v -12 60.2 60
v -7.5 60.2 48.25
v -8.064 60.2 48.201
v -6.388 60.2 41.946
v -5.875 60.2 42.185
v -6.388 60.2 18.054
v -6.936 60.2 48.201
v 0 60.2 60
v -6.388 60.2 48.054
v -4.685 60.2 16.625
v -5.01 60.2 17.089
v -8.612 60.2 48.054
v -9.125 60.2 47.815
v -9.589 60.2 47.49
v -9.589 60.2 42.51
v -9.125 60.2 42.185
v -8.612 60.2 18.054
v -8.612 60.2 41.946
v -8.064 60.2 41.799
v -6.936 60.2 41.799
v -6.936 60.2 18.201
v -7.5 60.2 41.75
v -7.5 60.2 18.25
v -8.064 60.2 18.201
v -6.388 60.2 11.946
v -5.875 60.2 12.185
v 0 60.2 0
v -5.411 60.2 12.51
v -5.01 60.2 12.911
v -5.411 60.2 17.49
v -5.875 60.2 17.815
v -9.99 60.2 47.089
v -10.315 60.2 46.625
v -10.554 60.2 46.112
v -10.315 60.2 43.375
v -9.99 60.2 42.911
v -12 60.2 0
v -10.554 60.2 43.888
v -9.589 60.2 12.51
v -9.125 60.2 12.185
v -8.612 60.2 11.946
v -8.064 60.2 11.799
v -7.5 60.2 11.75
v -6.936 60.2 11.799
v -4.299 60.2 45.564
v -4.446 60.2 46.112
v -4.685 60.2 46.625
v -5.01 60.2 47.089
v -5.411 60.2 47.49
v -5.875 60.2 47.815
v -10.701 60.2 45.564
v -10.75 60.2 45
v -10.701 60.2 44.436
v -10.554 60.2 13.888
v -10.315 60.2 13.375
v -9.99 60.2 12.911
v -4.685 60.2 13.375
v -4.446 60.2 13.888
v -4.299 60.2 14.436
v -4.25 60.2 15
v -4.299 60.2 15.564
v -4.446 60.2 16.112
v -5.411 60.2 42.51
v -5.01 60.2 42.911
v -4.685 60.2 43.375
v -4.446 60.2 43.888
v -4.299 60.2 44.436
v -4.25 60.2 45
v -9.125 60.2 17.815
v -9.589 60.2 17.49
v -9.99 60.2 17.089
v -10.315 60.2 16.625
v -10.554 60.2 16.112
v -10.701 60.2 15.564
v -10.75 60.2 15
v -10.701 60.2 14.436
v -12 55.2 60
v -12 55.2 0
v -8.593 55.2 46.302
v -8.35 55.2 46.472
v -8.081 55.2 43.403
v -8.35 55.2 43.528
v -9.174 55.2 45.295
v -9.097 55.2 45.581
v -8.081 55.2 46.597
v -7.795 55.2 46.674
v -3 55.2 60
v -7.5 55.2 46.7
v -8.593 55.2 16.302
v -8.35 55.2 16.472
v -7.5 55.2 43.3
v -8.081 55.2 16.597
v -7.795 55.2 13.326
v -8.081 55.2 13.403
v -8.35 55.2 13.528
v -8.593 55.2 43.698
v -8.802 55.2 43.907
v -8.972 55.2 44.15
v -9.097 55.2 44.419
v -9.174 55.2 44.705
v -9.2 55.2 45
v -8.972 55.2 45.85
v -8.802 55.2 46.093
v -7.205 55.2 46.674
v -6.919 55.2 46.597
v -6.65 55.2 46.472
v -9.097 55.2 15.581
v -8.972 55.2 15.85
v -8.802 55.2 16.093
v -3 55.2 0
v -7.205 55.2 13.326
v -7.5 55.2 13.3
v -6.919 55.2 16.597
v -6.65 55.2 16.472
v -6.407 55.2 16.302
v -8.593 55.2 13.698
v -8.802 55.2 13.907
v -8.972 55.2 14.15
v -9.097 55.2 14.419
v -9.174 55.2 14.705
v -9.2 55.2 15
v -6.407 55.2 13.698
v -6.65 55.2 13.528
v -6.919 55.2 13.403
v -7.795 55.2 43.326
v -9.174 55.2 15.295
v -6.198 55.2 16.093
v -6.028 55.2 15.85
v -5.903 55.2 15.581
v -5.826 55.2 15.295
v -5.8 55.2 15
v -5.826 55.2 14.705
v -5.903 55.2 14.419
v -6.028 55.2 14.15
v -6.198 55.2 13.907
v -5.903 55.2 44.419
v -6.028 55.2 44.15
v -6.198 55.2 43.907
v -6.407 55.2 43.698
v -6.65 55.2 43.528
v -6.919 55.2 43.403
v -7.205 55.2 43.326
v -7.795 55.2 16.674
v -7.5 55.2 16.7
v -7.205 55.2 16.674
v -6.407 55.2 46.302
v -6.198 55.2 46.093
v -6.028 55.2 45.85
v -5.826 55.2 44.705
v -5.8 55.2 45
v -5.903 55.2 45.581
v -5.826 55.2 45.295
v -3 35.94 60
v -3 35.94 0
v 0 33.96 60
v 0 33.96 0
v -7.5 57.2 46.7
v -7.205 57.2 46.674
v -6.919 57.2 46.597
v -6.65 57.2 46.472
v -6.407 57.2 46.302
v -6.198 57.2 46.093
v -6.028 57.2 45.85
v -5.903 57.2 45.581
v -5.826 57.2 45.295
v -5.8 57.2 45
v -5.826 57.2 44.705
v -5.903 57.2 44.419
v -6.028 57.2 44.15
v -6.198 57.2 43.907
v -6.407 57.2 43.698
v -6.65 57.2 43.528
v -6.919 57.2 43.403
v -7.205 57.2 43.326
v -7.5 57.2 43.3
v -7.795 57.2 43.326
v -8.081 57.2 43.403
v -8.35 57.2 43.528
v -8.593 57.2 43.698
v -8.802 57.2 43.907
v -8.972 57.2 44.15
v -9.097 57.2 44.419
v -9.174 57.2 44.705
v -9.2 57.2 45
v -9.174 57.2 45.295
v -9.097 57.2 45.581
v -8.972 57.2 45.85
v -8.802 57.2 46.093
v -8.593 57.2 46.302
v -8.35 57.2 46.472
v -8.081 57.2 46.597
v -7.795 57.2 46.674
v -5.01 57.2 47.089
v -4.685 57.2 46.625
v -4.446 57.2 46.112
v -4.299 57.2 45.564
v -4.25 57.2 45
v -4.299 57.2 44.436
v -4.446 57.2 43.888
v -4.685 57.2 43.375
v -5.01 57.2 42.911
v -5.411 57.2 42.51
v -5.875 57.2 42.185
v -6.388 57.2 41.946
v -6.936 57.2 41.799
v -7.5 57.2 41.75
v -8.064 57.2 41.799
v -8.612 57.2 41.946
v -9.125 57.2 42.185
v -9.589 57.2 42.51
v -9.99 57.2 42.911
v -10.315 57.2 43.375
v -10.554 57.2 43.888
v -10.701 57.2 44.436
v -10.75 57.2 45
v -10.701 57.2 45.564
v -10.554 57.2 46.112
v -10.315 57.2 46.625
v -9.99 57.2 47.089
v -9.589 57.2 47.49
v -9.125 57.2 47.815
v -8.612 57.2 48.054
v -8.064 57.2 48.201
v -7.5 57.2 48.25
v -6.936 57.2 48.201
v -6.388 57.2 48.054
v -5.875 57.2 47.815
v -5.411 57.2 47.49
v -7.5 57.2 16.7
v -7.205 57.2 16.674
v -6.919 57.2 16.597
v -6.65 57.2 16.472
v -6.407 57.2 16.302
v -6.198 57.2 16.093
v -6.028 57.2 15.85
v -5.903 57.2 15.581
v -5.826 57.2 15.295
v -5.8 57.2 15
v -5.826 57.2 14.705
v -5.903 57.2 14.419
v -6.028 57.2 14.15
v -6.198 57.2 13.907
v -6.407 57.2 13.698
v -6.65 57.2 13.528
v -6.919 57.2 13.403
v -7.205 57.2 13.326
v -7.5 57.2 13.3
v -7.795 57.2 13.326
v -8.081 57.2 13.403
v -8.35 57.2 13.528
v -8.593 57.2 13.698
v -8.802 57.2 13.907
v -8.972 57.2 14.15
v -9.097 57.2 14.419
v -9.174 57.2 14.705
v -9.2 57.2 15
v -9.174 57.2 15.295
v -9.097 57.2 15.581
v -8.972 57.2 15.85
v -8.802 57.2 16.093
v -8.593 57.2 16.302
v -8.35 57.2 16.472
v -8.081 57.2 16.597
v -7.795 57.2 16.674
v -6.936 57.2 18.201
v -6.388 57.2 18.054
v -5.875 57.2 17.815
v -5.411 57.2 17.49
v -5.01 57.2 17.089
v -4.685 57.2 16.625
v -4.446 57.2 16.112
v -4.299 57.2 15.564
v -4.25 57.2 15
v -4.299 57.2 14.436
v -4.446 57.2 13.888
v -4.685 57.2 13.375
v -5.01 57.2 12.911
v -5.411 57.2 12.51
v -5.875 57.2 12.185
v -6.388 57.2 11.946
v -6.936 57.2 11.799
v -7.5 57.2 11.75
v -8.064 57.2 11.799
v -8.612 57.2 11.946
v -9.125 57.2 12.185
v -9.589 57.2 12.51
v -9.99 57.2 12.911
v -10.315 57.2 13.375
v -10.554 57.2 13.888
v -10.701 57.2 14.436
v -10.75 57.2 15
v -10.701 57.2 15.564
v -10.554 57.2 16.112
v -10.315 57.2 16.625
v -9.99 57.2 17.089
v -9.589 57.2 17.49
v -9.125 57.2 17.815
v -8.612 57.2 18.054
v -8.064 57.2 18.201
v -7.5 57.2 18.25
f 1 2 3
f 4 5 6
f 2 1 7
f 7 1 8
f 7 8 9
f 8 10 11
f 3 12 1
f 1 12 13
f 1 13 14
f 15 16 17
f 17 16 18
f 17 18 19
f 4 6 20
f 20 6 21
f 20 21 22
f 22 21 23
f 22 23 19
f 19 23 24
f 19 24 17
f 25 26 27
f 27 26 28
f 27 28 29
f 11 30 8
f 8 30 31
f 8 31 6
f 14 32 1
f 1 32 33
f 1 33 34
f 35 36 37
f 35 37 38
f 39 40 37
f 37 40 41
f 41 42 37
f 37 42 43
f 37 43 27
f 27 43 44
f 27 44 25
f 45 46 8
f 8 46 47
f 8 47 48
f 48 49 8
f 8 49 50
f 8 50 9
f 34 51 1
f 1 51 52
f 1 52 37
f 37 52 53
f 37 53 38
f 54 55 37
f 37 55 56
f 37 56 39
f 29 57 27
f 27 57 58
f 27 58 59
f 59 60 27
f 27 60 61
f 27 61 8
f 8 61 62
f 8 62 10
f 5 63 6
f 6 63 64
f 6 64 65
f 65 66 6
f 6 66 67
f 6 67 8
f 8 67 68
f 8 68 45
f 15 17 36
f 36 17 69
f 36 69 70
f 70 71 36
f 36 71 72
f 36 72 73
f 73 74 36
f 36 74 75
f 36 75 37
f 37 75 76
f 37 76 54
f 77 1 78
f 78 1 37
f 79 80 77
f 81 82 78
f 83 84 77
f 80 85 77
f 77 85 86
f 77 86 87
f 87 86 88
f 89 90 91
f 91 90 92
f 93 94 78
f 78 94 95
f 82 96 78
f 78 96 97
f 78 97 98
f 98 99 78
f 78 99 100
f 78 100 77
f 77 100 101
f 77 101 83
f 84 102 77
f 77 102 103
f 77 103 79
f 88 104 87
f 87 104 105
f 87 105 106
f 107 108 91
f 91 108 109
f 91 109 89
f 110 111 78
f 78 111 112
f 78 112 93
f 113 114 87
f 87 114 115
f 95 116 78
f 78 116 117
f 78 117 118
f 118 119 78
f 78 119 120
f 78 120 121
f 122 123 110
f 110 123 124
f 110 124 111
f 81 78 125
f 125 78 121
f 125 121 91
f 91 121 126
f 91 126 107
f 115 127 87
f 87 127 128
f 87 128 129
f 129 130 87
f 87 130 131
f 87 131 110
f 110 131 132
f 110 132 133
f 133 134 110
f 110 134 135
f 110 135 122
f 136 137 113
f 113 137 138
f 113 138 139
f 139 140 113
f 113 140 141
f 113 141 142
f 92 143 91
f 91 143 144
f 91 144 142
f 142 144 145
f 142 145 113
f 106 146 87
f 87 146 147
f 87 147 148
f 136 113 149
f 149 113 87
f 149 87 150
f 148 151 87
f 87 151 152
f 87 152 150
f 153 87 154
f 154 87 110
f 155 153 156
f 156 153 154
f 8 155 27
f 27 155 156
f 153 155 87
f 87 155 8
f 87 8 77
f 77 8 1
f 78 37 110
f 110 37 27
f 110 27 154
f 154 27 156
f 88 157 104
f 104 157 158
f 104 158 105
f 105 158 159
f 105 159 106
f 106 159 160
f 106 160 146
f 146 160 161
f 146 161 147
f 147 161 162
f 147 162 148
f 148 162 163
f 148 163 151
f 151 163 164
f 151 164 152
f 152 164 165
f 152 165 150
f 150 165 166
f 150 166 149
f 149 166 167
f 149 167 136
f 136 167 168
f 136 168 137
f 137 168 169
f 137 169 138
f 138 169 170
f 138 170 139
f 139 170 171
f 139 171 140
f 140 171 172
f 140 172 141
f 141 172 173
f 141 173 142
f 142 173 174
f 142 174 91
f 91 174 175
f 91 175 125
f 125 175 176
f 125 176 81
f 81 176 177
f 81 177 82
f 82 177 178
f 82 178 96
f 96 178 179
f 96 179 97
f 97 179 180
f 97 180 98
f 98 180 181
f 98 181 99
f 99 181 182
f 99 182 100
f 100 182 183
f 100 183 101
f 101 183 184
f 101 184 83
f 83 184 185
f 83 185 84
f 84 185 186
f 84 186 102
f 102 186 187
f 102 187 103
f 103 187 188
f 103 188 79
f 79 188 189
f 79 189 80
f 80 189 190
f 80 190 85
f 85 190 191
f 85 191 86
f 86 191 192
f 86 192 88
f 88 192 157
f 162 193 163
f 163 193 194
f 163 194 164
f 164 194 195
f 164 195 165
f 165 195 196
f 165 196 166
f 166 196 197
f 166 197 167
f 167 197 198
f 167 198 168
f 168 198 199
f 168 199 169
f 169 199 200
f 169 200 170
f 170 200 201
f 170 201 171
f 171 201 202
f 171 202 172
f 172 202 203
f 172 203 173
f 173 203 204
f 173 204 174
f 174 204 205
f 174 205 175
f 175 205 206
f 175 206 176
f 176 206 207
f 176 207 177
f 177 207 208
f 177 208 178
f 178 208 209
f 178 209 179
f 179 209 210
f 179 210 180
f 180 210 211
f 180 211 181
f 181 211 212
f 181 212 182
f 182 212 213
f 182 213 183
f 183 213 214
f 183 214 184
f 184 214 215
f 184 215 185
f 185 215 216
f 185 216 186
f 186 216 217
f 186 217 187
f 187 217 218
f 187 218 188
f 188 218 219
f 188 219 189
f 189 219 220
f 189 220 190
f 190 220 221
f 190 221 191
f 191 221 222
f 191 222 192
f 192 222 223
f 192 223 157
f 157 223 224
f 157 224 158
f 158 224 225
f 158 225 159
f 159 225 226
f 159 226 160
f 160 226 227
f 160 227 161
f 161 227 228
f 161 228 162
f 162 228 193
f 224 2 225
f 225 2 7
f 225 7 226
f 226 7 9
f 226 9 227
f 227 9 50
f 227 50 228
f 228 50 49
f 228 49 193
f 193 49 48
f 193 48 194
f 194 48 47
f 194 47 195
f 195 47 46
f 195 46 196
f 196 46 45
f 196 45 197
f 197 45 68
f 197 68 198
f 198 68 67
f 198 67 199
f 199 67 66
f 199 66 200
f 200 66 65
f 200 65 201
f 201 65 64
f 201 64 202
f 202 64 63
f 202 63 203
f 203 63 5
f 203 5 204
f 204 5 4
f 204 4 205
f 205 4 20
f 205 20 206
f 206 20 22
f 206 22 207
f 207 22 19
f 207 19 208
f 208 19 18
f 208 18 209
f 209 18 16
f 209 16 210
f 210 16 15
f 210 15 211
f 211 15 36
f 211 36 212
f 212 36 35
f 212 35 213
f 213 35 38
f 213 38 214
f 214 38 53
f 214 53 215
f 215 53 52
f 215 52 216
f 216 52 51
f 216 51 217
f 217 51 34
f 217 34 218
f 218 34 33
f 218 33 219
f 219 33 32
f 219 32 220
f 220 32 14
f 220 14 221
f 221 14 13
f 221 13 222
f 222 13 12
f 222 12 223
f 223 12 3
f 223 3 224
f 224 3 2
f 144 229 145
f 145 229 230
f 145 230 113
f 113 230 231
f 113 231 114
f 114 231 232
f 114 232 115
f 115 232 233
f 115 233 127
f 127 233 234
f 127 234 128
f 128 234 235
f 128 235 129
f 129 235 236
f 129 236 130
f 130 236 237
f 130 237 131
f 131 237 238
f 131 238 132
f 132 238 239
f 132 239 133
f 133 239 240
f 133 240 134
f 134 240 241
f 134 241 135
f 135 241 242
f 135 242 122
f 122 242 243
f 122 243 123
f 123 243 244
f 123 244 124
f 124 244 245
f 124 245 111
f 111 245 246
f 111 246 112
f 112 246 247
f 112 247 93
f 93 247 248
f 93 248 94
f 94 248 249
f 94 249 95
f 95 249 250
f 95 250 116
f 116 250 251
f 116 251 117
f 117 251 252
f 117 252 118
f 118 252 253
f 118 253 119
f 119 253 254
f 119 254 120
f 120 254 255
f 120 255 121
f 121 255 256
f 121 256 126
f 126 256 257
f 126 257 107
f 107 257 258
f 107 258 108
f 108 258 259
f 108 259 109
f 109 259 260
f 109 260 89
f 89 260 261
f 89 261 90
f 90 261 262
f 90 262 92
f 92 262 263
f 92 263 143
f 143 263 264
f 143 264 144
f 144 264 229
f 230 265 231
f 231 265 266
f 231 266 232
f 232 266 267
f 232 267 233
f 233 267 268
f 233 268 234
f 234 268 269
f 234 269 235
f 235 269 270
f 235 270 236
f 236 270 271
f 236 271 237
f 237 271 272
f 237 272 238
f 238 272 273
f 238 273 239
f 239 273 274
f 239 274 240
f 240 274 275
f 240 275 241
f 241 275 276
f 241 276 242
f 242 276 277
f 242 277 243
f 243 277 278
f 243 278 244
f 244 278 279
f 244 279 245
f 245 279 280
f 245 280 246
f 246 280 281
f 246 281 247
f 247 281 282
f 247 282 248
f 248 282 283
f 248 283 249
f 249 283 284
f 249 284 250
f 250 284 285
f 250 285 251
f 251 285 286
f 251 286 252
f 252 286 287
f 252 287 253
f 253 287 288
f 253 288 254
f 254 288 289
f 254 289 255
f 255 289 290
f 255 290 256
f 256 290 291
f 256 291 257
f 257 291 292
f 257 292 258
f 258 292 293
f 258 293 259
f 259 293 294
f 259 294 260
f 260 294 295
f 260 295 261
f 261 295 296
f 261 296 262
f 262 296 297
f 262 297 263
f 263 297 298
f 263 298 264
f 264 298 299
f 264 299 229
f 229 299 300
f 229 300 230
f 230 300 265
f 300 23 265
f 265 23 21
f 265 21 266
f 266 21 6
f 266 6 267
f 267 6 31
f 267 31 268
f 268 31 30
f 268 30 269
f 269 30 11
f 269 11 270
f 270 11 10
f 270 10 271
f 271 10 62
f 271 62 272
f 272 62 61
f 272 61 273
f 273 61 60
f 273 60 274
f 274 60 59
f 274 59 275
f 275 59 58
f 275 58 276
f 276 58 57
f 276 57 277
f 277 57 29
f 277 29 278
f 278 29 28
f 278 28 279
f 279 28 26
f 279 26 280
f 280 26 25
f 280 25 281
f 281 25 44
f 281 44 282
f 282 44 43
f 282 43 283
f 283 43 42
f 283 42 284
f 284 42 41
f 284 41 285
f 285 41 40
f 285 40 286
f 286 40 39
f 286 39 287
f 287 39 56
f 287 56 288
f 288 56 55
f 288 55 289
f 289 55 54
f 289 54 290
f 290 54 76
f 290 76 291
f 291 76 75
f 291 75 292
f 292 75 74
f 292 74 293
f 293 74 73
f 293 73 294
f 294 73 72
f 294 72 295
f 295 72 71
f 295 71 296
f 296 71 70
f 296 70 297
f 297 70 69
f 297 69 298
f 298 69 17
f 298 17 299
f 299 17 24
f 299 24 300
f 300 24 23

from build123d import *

# Parameters (mm, degrees)
BOSS_EXTRUDE1_DEPTH            = 60
CBORE_FOR_M3_SHCS1_D           = 3.4
CBORE_FOR_M3_SHCS1_DEPTH       = 5
CBORE_FOR_M3_SHCS1_CBORE_D     = 6.5
CBORE_FOR_M3_SHCS1_CBORE_DEPTH = 3
CBORE_FOR_M3_SHCS1_TIP         = 1.021463052


with BuildPart() as part:
    # Sketch3 → Boss-Extrude1 (new body)
    with BuildSketch(Plane.XY):
        Polygon((0, 60.2), (0, 33.96), (-3, 35.94), (-3, 55.2), (-12, 55.2), (-12, 60.2), align=None)
    extrude(amount=BOSS_EXTRUDE1_DEPTH)

    # CBORE for M3 SHCS1
    with Locations(Plane(origin=(0, 60.2, 0), x_dir=(1, 0, 0), z_dir=(0, 1, 0))):
        with Locations((-7.5, -15), (-7.5, -45)):
            CounterBoreHole(CBORE_FOR_M3_SHCS1_D / 2, CBORE_FOR_M3_SHCS1_CBORE_D / 2, CBORE_FOR_M3_SHCS1_CBORE_DEPTH, depth=CBORE_FOR_M3_SHCS1_DEPTH)
            with Locations((0, 0, -(CBORE_FOR_M3_SHCS1_DEPTH + CBORE_FOR_M3_SHCS1_TIP / 2))):  # 118° drill point
                Cone(0, CBORE_FOR_M3_SHCS1_D / 2, CBORE_FOR_M3_SHCS1_TIP, mode=Mode.SUBTRACT)


solid = part.part
